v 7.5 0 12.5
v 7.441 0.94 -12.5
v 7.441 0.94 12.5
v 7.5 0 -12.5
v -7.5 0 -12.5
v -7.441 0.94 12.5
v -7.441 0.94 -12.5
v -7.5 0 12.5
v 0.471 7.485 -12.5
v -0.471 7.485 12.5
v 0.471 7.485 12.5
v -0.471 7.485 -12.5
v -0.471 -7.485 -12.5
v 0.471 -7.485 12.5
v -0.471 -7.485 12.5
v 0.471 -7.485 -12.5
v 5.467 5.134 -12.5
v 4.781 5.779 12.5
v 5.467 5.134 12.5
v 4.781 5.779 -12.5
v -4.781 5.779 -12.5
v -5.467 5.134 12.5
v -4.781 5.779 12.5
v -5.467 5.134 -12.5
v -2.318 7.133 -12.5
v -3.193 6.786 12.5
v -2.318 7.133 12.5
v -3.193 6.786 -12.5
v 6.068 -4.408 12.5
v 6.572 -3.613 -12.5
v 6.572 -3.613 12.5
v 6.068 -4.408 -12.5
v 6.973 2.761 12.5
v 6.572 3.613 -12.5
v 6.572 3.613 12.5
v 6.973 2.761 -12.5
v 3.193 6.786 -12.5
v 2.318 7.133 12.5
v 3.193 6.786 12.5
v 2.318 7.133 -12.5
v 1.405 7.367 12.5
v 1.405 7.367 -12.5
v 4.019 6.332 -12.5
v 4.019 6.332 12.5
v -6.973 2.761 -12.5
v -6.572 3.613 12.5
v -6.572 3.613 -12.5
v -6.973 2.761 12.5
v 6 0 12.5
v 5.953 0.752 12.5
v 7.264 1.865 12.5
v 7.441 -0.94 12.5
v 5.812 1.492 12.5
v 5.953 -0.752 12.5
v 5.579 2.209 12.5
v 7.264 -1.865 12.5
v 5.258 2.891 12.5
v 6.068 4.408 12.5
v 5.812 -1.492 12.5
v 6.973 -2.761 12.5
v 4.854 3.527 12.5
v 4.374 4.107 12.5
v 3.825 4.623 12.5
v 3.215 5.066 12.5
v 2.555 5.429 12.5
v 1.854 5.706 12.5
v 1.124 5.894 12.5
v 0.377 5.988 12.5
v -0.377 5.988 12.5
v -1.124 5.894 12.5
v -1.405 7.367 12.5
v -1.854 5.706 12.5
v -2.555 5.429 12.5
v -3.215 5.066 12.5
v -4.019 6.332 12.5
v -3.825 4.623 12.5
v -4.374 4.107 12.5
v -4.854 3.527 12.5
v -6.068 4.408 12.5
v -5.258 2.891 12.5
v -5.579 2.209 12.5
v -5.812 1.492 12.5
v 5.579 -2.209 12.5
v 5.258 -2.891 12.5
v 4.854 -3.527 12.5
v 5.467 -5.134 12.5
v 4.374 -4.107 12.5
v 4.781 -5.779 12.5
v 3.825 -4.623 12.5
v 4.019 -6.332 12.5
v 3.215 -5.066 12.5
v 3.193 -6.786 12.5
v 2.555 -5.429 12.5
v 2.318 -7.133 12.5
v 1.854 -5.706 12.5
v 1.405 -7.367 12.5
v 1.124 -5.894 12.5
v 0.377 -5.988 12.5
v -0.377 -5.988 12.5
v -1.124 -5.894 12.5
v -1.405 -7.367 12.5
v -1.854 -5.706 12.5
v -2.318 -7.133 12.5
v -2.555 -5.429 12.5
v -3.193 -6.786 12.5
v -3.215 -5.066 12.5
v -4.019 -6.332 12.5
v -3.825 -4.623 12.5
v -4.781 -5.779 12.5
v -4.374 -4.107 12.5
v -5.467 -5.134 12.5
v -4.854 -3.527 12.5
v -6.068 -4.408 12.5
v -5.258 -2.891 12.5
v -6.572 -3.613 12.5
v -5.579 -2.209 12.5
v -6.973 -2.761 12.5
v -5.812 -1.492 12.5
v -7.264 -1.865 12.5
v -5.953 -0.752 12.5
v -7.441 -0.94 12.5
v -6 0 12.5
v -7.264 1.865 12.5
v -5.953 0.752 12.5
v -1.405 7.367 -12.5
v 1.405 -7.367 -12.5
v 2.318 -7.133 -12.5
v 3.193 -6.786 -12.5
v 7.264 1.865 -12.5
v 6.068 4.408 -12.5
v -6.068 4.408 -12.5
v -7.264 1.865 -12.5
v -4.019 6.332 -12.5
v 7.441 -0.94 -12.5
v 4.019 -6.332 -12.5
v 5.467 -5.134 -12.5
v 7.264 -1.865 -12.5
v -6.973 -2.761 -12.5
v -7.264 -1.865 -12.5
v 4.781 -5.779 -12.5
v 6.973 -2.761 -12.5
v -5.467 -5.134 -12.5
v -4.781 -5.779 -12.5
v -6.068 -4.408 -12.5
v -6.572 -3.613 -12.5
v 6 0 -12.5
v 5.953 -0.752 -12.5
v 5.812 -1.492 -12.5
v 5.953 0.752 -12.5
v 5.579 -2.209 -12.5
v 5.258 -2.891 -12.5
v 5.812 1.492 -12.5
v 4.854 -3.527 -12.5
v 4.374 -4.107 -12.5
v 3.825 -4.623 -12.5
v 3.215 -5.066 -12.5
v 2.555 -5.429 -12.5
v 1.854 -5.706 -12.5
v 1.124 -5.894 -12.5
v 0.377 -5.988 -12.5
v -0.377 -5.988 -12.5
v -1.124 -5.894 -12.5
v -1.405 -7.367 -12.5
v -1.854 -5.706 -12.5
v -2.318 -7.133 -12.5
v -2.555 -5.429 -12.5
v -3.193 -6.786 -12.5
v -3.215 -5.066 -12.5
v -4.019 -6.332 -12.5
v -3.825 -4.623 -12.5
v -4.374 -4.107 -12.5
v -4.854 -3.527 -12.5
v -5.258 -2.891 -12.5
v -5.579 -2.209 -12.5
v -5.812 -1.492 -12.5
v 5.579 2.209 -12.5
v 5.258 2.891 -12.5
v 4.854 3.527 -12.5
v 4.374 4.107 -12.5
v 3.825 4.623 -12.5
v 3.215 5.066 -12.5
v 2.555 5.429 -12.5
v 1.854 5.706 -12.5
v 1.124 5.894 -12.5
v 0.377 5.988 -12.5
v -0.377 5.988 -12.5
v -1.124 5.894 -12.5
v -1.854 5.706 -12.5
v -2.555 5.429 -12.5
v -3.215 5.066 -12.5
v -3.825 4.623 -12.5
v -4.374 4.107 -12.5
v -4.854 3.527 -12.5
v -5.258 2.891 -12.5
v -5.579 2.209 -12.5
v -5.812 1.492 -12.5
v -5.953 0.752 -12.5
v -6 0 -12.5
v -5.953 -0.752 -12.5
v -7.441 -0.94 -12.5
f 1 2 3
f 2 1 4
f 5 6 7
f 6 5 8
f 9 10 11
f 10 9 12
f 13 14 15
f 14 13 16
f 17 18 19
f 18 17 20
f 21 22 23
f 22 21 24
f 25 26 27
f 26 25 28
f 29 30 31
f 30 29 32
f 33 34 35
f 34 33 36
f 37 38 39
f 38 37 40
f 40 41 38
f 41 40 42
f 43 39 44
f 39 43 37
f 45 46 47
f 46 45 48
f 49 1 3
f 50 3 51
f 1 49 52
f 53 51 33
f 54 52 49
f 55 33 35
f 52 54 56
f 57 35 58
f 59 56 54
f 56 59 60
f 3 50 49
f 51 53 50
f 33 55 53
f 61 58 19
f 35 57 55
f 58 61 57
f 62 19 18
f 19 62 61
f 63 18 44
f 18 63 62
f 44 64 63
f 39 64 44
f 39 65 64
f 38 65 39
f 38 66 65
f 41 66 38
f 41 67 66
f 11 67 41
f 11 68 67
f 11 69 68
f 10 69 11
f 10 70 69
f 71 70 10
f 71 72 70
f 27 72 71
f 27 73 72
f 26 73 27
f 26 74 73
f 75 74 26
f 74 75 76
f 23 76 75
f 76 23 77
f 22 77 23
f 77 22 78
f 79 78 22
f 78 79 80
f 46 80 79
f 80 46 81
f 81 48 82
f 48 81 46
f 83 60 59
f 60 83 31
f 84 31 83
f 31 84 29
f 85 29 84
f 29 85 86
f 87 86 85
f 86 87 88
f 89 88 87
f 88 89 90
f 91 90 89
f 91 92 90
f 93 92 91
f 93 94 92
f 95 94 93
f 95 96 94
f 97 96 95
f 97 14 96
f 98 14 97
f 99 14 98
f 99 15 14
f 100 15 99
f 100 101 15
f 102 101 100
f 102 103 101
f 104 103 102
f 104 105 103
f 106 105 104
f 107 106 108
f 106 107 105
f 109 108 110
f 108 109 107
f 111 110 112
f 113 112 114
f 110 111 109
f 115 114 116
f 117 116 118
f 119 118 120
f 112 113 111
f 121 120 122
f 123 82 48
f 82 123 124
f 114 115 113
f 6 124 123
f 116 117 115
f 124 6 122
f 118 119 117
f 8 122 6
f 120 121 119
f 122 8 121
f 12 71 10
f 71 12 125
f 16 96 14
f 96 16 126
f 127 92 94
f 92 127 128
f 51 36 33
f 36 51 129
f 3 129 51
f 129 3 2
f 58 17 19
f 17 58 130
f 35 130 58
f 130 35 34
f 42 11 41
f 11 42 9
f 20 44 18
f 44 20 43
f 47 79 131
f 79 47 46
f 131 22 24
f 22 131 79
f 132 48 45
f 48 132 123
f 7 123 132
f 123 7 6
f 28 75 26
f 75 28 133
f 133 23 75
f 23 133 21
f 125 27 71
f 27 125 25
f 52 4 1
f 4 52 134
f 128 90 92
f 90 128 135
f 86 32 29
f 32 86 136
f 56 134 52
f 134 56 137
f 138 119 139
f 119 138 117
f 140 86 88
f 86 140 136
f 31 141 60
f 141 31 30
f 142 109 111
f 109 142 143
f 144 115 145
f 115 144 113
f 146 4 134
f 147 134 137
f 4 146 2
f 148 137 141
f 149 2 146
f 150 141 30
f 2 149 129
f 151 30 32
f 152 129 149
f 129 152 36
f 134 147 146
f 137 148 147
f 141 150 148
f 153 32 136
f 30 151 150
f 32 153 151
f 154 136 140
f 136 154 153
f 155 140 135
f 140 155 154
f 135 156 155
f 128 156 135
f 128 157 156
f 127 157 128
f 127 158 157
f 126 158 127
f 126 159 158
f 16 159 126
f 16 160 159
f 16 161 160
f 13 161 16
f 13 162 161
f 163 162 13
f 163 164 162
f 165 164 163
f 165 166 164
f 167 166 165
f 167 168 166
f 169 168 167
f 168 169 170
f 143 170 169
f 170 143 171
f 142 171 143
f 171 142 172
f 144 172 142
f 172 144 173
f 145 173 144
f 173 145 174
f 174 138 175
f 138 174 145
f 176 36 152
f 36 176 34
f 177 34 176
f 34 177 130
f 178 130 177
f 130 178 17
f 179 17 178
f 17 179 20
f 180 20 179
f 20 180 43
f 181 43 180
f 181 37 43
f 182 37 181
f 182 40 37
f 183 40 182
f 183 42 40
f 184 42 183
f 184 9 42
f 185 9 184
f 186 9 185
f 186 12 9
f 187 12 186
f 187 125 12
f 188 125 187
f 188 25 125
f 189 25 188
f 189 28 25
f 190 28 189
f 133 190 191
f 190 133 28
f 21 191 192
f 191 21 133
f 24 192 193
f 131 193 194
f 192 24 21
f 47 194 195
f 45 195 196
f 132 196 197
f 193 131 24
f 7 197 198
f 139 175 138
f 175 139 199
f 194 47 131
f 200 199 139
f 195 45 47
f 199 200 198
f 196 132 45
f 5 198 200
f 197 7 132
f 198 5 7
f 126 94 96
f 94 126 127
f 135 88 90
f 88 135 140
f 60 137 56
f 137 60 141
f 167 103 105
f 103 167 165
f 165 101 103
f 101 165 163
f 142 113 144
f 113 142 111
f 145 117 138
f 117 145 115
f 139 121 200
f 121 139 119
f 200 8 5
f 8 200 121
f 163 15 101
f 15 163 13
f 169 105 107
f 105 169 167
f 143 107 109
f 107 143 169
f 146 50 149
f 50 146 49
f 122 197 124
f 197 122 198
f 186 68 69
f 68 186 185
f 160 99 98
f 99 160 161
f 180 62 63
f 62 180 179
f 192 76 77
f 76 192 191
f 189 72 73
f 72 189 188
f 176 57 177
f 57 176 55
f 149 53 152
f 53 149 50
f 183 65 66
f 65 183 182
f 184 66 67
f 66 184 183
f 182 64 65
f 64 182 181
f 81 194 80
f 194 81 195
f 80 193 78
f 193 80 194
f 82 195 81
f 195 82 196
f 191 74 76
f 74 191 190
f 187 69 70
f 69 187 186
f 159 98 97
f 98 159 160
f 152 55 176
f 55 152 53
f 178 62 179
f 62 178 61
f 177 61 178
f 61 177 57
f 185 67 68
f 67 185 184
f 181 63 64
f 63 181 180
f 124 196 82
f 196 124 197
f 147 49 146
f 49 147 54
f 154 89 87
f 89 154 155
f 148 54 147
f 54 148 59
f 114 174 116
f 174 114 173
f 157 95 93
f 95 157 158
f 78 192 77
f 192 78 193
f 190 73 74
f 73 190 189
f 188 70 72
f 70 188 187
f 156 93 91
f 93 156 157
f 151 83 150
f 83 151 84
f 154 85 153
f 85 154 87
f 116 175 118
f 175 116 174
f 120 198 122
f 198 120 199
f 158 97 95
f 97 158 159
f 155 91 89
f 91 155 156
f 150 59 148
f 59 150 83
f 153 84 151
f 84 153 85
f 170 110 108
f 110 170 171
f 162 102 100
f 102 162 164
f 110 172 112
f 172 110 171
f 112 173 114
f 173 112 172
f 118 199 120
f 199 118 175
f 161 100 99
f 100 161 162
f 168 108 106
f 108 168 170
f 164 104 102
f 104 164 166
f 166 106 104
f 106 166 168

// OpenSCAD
$fn = 50;


difference() {
	union() {
		translate(v = [0, 0, -12.5000000000]) {
			cylinder(h = 25, r = 7.5000000000);
		}
	}
	union() {
		translate(v = [0, 0, -100.0000000000]) {
			cylinder(h = 200, r = 6);
		}
	}
}
